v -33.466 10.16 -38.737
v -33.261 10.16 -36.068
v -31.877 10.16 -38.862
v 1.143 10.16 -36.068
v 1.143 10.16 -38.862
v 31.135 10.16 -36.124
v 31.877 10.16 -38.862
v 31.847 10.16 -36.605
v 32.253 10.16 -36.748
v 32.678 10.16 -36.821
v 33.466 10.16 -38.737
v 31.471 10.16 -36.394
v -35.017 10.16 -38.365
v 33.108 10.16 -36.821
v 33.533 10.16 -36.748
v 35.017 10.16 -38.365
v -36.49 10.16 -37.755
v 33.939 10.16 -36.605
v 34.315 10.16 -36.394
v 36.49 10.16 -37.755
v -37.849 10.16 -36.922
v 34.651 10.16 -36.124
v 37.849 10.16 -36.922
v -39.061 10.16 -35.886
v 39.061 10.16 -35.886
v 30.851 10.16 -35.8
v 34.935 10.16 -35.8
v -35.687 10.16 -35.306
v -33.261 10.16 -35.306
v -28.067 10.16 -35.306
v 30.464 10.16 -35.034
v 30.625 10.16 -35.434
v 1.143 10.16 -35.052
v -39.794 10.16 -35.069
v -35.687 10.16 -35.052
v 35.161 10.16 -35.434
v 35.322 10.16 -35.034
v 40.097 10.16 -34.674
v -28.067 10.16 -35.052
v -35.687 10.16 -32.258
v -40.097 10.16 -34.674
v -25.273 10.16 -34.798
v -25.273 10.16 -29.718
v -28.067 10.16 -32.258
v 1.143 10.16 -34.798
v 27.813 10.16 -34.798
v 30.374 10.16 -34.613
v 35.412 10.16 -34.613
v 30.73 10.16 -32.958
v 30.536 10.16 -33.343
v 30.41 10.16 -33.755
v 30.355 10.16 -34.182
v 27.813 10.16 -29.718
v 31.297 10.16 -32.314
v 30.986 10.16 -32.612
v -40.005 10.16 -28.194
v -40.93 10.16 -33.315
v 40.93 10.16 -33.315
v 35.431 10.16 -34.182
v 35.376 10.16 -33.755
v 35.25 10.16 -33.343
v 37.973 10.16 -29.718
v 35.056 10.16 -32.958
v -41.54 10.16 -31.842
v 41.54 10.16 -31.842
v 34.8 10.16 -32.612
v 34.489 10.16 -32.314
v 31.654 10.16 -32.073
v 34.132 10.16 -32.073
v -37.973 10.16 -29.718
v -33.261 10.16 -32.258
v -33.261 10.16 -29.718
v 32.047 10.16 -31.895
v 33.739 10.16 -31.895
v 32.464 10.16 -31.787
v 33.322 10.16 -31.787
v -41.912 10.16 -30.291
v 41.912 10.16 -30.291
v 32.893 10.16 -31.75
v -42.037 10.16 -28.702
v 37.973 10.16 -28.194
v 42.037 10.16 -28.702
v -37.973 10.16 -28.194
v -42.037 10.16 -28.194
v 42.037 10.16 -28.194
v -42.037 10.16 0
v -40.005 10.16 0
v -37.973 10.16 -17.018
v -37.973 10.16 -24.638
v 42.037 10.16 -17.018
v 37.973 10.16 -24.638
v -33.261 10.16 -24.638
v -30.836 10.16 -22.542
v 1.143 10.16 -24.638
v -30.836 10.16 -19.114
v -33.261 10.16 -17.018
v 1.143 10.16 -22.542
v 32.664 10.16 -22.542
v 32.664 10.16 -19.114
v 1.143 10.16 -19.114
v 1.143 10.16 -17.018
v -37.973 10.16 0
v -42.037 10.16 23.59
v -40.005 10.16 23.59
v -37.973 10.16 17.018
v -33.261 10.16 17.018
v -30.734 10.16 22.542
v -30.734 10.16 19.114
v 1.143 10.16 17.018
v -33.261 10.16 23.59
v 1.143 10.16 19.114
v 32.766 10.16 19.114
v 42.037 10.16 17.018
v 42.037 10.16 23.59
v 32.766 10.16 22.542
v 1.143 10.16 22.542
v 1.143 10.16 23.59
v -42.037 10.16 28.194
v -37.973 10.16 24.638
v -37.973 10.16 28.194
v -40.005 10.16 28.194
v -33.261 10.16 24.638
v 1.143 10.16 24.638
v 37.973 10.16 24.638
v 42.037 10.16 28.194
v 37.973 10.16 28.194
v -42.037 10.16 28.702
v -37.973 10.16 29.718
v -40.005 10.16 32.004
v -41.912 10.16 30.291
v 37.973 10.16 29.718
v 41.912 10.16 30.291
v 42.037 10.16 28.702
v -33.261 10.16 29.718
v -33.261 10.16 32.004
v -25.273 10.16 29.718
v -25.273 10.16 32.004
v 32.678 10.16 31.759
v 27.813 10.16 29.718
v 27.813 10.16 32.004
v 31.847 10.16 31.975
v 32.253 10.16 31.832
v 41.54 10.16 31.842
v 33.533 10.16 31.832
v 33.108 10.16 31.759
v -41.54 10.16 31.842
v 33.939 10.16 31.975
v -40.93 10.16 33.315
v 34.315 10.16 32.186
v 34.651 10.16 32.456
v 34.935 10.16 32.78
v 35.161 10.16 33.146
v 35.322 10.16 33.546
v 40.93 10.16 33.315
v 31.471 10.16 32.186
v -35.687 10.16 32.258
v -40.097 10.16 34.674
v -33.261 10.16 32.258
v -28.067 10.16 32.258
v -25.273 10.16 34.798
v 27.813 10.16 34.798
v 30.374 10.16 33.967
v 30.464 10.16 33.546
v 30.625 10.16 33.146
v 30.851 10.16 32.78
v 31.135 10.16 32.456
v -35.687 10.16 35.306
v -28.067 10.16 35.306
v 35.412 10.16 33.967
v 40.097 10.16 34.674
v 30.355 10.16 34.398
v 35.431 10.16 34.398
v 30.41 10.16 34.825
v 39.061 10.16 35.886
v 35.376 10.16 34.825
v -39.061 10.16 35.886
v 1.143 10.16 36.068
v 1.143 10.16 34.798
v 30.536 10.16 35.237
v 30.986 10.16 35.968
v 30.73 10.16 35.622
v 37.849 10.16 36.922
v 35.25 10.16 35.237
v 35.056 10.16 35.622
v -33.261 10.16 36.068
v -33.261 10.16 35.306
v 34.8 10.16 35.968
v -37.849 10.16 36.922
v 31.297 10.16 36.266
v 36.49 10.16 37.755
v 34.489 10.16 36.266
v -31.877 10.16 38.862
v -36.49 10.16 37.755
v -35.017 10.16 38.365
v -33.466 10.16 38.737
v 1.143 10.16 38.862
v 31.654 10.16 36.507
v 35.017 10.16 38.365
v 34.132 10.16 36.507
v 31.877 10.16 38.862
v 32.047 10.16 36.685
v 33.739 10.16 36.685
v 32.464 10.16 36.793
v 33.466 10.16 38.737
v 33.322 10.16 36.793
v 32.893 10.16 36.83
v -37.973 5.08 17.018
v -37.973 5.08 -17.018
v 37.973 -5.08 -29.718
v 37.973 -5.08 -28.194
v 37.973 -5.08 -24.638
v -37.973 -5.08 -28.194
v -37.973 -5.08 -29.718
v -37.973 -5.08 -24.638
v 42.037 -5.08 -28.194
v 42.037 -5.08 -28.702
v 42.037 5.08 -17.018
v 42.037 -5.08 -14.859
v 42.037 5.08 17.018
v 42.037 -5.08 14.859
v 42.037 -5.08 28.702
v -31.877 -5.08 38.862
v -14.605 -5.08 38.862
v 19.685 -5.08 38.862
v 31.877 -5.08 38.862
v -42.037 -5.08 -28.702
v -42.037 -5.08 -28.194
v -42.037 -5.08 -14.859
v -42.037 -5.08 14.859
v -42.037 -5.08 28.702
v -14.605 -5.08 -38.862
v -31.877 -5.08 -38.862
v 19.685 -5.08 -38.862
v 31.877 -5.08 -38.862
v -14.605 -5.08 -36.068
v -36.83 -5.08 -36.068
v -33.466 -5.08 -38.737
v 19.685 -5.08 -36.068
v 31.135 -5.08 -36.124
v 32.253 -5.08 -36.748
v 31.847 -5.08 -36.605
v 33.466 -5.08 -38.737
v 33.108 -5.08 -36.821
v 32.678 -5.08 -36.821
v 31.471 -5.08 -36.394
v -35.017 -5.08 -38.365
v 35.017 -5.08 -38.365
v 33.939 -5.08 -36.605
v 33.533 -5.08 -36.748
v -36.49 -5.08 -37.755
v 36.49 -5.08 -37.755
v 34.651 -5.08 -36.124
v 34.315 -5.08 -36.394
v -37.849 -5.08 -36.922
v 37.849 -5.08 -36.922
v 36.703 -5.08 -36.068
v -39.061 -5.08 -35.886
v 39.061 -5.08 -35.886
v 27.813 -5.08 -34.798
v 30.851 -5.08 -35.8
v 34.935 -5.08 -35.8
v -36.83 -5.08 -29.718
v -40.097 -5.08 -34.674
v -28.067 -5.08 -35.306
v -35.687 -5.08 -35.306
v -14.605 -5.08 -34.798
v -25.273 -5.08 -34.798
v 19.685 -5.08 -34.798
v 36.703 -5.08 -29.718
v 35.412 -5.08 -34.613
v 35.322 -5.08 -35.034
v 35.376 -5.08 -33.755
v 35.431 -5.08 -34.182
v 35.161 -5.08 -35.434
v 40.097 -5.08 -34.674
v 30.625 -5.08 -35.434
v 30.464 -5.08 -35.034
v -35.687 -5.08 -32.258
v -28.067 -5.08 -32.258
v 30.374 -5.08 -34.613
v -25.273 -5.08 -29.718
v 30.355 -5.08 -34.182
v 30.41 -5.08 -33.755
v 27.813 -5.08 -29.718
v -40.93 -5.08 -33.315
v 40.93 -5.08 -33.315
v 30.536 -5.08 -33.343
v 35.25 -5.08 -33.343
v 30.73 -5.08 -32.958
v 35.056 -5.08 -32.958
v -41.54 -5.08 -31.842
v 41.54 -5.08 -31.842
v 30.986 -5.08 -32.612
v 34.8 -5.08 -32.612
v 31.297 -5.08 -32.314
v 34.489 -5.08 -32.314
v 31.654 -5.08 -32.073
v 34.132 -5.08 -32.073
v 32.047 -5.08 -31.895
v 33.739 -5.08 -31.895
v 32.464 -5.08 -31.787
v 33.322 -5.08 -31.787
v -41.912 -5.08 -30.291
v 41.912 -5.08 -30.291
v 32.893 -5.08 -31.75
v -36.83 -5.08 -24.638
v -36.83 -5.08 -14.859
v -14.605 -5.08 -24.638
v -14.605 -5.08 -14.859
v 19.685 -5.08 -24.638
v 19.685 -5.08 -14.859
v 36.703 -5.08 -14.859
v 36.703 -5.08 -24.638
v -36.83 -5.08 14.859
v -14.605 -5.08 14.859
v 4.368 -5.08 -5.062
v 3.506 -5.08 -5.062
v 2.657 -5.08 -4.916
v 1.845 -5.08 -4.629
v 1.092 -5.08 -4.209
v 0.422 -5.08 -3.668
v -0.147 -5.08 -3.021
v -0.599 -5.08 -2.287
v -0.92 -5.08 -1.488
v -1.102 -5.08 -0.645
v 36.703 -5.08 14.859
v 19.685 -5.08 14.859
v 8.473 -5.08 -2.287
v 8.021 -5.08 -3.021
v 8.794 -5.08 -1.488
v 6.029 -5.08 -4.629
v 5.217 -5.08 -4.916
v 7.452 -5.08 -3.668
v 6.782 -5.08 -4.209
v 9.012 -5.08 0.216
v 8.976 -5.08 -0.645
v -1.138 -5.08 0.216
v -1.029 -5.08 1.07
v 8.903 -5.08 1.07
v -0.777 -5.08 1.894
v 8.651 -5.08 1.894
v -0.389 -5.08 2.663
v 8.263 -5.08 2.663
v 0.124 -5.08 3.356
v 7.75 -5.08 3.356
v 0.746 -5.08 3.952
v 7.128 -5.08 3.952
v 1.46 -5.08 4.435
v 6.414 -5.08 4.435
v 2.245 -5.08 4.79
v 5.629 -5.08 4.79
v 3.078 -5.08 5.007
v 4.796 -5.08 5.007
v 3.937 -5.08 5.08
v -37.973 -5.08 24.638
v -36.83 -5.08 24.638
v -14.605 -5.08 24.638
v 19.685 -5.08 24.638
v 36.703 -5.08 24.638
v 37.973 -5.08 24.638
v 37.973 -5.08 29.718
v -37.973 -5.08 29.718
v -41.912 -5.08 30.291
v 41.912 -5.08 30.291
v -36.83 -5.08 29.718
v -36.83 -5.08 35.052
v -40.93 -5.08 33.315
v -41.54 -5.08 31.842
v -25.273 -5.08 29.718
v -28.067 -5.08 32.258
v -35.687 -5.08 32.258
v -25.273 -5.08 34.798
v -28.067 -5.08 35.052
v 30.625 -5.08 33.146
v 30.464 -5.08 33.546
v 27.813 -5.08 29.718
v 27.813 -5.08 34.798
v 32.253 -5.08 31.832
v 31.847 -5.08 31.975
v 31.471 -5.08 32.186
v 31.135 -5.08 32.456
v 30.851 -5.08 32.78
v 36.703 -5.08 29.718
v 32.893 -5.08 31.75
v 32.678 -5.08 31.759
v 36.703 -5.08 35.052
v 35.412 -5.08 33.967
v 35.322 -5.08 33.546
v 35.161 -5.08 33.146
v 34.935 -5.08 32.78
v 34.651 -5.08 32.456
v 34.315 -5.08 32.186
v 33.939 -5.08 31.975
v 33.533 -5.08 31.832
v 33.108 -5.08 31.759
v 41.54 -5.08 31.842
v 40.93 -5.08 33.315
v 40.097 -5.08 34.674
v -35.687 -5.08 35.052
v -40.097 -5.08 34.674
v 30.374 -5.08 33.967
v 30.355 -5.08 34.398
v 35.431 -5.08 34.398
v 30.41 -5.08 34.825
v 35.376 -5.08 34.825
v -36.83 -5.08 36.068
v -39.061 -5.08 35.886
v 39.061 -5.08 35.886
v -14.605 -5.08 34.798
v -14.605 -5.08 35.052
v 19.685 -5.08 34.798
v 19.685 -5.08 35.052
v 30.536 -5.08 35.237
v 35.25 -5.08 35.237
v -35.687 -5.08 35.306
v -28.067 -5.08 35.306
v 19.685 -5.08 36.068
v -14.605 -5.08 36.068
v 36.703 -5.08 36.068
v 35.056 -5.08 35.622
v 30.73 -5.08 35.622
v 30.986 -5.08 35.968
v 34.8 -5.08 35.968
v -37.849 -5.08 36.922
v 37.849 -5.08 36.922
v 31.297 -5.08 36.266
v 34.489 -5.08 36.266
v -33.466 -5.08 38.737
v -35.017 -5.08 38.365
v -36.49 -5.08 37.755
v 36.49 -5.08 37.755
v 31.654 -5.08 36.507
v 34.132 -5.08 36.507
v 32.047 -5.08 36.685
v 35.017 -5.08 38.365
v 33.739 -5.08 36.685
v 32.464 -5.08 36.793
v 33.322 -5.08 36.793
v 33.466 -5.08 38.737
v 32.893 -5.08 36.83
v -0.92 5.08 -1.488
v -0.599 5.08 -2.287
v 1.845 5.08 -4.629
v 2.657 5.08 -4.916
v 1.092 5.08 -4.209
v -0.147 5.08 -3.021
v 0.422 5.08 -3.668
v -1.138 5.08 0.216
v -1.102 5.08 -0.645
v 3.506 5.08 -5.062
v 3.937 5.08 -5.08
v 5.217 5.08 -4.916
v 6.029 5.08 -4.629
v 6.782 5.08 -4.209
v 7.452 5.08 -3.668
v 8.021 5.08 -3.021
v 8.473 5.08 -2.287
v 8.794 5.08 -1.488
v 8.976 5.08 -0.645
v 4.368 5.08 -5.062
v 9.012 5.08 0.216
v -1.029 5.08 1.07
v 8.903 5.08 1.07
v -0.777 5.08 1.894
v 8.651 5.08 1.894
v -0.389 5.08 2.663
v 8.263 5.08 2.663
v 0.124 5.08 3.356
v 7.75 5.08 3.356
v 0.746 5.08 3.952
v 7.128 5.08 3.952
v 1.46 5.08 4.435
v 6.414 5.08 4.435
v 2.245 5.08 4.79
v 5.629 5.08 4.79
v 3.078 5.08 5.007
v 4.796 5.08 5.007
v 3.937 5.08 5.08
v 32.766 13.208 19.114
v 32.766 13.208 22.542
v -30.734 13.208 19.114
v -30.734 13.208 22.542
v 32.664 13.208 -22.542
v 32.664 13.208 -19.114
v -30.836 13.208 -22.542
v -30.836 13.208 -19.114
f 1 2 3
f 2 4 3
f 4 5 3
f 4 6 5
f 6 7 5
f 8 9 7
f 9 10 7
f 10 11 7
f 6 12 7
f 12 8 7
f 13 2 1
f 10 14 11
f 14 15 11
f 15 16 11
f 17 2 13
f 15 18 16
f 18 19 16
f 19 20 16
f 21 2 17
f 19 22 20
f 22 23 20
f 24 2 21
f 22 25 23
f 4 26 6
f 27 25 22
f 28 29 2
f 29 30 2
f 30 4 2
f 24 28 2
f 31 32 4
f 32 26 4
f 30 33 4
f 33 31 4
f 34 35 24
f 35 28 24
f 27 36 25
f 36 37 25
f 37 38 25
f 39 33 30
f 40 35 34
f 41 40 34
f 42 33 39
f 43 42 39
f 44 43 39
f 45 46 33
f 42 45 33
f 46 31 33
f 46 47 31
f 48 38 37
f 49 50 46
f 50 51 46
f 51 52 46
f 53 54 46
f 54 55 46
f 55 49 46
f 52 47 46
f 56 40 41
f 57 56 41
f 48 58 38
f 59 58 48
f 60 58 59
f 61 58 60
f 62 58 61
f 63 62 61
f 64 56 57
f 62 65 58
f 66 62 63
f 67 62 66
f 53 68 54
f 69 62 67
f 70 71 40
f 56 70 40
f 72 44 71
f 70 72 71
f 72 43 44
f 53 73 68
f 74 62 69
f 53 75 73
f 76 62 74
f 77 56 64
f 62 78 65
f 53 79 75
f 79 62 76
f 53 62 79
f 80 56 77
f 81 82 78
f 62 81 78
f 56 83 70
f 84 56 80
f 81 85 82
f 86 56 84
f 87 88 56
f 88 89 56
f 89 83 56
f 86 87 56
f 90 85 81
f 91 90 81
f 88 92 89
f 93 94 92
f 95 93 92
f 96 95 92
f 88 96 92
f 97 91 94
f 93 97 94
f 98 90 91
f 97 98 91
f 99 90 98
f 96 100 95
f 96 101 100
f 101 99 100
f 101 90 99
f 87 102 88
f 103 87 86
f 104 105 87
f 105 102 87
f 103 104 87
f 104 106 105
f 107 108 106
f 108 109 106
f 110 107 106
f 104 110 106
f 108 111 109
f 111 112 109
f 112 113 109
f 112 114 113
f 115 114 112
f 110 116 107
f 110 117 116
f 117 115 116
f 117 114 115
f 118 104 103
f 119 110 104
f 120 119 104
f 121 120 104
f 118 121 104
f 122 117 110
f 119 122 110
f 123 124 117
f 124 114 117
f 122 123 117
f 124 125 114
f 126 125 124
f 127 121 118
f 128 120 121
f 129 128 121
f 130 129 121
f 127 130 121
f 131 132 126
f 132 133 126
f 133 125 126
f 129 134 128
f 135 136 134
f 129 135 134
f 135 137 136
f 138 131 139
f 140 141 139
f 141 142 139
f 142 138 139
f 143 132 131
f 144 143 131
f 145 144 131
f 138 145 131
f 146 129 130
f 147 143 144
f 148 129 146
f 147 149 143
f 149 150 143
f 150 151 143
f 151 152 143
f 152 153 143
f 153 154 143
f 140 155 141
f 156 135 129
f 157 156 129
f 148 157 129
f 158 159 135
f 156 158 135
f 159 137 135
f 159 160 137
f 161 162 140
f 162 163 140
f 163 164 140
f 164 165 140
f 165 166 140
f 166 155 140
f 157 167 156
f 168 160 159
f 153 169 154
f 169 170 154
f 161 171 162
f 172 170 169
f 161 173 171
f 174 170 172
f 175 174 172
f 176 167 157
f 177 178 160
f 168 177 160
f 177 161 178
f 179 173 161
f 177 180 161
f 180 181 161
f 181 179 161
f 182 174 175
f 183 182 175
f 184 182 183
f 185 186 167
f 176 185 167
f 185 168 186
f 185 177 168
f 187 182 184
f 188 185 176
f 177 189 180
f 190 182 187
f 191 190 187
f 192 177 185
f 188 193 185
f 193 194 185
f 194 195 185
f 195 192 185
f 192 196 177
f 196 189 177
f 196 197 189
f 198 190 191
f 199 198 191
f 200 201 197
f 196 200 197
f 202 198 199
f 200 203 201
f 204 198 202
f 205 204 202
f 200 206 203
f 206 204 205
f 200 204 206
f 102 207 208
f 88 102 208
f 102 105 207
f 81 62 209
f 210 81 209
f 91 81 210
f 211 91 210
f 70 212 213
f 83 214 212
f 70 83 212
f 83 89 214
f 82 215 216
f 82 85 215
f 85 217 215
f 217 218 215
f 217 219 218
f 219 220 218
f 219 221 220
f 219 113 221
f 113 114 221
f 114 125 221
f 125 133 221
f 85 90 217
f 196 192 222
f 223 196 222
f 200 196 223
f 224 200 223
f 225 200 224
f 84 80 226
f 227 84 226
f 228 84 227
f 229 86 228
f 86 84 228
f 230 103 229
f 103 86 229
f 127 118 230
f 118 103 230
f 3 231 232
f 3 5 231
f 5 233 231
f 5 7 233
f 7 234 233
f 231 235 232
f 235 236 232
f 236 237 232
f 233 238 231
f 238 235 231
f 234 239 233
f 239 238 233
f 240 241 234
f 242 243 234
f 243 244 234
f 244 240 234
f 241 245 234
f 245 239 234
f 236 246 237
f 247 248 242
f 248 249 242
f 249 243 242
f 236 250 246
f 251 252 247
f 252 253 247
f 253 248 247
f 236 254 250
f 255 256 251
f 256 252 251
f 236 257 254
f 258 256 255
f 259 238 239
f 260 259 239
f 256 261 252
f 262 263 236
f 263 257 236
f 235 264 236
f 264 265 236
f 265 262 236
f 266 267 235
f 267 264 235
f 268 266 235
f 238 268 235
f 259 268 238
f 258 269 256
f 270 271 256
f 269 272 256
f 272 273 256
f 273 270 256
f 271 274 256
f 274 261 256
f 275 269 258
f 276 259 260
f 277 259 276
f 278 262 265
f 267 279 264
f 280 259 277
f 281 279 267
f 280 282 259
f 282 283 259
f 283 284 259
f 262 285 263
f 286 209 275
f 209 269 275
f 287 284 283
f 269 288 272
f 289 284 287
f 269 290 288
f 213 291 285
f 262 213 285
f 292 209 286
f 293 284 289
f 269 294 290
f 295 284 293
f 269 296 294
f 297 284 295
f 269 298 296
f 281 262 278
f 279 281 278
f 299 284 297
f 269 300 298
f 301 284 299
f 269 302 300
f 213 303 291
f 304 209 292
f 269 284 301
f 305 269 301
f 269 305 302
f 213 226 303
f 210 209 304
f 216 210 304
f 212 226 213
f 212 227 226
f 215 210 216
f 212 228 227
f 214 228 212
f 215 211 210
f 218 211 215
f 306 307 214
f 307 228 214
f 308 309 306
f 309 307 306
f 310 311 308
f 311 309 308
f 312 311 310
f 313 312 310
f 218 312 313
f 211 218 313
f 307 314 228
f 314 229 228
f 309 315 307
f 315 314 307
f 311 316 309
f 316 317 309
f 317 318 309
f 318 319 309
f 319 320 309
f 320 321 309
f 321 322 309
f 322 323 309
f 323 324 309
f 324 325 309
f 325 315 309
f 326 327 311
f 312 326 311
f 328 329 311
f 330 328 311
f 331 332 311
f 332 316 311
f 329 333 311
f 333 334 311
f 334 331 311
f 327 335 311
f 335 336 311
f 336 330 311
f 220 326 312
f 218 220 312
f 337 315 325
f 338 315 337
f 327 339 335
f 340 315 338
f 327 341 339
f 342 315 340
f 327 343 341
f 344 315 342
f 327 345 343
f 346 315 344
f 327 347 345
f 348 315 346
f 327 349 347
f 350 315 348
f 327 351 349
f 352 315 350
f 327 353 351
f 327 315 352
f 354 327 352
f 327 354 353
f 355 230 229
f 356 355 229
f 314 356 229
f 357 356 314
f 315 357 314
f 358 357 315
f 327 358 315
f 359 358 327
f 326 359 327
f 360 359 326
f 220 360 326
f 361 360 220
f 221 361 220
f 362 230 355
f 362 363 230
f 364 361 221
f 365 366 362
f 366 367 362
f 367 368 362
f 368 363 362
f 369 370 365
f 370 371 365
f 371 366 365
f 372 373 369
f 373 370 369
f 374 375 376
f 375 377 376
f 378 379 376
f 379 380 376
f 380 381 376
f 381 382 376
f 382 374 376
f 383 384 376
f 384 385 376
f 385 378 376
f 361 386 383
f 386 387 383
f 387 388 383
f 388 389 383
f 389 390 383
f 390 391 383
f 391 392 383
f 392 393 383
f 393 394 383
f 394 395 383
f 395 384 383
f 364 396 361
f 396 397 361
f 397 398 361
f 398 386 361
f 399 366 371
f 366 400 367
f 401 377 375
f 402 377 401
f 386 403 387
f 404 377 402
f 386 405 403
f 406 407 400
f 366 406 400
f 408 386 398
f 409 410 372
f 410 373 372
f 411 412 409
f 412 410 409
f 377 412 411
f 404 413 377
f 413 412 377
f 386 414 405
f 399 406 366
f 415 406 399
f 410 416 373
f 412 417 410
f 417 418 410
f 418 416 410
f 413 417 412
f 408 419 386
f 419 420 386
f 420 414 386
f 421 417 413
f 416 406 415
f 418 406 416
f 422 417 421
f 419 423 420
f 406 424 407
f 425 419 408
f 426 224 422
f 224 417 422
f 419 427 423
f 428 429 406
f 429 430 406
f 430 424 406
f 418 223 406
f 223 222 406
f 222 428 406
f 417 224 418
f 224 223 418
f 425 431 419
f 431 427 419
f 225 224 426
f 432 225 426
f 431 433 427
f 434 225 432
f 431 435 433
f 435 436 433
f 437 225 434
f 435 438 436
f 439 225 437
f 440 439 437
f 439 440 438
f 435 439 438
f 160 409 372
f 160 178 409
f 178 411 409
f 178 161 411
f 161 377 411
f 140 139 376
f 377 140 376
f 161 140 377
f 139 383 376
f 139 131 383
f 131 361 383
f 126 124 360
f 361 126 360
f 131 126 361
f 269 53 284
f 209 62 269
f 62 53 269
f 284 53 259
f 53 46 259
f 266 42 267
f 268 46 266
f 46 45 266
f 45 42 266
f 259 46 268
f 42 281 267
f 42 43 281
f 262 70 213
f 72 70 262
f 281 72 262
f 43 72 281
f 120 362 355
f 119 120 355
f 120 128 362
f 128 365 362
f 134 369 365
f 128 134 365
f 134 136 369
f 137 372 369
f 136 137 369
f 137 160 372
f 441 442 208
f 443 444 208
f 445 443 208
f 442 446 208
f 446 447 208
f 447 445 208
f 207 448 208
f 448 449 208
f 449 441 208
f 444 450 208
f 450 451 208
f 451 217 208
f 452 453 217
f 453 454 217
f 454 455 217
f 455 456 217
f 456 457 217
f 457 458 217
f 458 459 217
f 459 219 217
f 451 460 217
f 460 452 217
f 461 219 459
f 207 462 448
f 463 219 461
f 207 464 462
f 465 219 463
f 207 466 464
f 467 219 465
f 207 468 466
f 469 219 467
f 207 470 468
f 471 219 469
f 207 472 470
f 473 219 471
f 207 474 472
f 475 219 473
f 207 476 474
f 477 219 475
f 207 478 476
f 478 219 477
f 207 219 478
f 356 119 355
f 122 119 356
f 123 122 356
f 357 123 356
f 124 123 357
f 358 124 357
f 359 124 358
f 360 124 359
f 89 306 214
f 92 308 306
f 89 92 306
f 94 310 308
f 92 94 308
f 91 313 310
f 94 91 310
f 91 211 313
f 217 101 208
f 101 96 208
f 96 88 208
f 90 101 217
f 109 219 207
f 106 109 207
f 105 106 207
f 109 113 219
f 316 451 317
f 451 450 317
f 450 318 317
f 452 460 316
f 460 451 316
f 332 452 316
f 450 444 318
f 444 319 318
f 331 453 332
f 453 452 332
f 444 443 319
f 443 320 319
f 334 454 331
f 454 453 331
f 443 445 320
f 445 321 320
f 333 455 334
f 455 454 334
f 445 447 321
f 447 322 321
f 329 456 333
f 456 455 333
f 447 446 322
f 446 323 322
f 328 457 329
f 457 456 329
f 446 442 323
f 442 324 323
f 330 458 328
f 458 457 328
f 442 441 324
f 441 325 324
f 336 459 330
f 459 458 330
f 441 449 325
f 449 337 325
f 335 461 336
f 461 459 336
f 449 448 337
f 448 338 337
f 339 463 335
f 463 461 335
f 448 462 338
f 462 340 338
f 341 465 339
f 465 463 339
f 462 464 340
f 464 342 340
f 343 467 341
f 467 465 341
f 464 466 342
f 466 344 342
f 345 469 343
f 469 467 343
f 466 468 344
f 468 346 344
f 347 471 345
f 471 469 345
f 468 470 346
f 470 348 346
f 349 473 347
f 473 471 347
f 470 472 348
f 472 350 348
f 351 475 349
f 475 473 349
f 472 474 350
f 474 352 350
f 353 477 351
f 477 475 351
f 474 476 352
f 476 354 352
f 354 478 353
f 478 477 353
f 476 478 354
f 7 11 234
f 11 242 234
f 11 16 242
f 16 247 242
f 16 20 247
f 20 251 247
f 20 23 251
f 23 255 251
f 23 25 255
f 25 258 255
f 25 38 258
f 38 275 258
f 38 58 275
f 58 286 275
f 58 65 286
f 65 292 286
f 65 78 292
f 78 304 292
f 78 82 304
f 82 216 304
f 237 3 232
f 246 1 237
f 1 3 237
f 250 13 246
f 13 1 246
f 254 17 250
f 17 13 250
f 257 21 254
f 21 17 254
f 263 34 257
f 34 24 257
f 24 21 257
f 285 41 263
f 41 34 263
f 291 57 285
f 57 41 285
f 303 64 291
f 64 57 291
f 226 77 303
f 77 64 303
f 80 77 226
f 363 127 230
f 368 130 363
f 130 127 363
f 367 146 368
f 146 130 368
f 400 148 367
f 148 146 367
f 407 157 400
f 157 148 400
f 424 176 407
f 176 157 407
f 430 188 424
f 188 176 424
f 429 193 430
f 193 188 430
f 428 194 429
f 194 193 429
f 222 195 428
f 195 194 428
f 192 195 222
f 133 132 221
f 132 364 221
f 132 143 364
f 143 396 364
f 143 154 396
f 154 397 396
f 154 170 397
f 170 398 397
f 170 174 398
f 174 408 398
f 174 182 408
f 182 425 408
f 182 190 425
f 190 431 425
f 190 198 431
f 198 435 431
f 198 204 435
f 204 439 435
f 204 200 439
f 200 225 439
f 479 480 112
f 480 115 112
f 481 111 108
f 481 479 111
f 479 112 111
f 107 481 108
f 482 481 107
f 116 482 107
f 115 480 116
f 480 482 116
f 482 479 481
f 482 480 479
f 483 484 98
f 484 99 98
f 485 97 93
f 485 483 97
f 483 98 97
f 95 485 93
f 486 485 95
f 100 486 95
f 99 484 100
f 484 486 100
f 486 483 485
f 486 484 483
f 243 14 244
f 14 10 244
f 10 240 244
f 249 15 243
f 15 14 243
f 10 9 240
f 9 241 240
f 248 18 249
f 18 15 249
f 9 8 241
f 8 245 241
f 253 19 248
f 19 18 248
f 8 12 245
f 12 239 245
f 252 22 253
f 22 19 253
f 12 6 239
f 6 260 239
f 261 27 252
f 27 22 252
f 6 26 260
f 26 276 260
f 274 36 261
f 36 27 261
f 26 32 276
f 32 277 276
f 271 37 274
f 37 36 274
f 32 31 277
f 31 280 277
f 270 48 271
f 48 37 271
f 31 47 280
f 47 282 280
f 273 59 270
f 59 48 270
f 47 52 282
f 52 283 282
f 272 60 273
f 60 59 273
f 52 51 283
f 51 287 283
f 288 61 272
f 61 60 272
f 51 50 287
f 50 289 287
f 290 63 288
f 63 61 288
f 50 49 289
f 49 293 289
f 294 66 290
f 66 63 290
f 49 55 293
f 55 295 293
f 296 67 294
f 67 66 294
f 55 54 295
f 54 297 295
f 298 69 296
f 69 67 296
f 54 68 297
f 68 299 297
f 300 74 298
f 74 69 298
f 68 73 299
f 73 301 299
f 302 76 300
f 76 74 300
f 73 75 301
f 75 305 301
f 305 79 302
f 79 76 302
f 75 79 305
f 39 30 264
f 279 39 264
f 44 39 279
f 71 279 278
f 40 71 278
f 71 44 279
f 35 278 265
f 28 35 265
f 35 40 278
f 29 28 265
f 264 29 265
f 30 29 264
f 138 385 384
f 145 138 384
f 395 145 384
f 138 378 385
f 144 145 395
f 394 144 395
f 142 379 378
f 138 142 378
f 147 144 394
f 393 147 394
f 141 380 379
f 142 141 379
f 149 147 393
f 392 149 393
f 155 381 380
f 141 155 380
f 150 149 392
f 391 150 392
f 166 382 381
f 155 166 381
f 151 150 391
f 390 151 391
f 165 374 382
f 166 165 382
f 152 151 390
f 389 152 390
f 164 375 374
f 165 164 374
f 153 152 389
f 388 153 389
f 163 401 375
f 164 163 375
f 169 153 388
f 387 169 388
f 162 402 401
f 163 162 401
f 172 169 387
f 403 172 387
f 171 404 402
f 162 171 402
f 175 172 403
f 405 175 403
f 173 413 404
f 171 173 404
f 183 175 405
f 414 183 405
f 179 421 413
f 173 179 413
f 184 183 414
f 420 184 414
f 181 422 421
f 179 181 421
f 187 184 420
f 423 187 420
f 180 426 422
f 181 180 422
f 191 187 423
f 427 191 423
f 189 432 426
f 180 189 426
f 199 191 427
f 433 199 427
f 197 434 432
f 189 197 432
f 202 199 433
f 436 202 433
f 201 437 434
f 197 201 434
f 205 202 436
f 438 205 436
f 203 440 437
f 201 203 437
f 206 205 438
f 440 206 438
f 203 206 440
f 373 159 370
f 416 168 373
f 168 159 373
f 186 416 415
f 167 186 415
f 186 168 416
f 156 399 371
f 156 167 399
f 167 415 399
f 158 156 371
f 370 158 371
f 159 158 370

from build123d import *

# Parameters (mm, degrees)
SKETCH1_W                = 84.074
SKETCH1_H                = 77.724
BOSS_EXTRUDE1_DEPTH      = 5.08
BOSS_EXTRUDE1_DEPTH_BACK = 5.08
SKETCH2_W                = 84.074
SKETCH2_H                = 77.724
BOSS_EXTRUDE2_DEPTH      = 5.08
BOSS_EXTRUDE2_DEPTH_BACK = 10.16
SKETCH3_W                = 53.086
SKETCH3_H                = 5.08
CUT_EXTRUDE1_DEPTH       = 6.08
CUT_EXTRUDE1_DEPTH_BACK  = 11.16
SKETCH4_W                = 75.946
SKETCH4_H                = 5.08
CUT_EXTRUDE2_DEPTH       = 6.08
CUT_EXTRUDE2_DEPTH_BACK  = 11.16
SKETCH5_W                = 75.946
SKETCH5_H                = 7.62
BOSS_EXTRUDE3_DEPTH      = 5.08
BOSS_EXTRUDE3_DEPTH_BACK = 10.16
SKETCH10_R               = 5.08
CUT_EXTRUDE4_DEPTH       = 6.08
CUT_EXTRUDE4_DEPTH_BACK  = 11.16
FILLET1_R                = 10.16
SKETCH14_W               = 63.5
SKETCH14_H               = 3.429
BOSS_EXTRUDE7_DEPTH      = 3.048
CUT_EXTRUDE6_START       = -16.24
SKETCH15_R               = 2.54
SKETCH15_W               = 7.62
SKETCH15_H               = 3.048
CUT_EXTRUDE6_DEPTH       = 20.288
SKETCH7_W                = 34.036
SKETCH7_H                = 5.08
CUT_EXTRUDE7_DEPTH       = 5.064


with BuildPart() as part:
    # Sketch1 → Boss-Extrude1 (new body, two sides)
    with BuildSketch(Plane(origin=(0, 0, 0), x_dir=(1, 0, 0), z_dir=(0, 1, 0))) as boss_extrude1_sk:
        Rectangle(SKETCH1_W, SKETCH1_H)
    extrude(amount=BOSS_EXTRUDE1_DEPTH)
    extrude(boss_extrude1_sk.sketch, amount=-BOSS_EXTRUDE1_DEPTH_BACK)

    # Sketch2 → Boss-Extrude2 (add, two sides)
    with BuildSketch(Plane(origin=(0, 5.08, 0), x_dir=(1, 0, 0), z_dir=(0, 1, 0))) as boss_extrude2_sk:
        Rectangle(SKETCH2_W, SKETCH2_H)
        Polygon((-37.973, -29.718), (-37.973, 29.718), (-25.273, 29.718), (-25.273, 34.798), (27.813, 34.798), (27.813, 29.718), (37.973, 29.718), (37.973, -29.718), (27.813, -29.718), (27.813, -34.798), (-25.273, -34.798), (-25.273, -29.718), align=None, mode=Mode.SUBTRACT)
    extrude(amount=BOSS_EXTRUDE2_DEPTH)
    extrude(boss_extrude2_sk.sketch, amount=-BOSS_EXTRUDE2_DEPTH_BACK)

    # Sketch3 → Cut-Extrude1 (cut, two sides)
    with BuildSketch(Plane(origin=(0, 5.08, 0), x_dir=(1, 0, 0), z_dir=(0, 1, 0))) as cut_extrude1_sk:
        with Locations((1.27, 32.258)):
            Rectangle(SKETCH3_W, SKETCH3_H)
        with Locations((1.27, -32.258)):
            Rectangle(SKETCH3_W, SKETCH3_H)
    extrude(amount=CUT_EXTRUDE1_DEPTH, mode=Mode.SUBTRACT)
    extrude(cut_extrude1_sk.sketch, amount=-CUT_EXTRUDE1_DEPTH_BACK, mode=Mode.SUBTRACT)

    # Sketch4 → Cut-Extrude2 (cut, two sides)
    with BuildSketch(Plane(origin=(0, 5.08, 0), x_dir=(1, 0, 0), z_dir=(0, 1, 0))) as cut_extrude2_sk:
        with Locations((0, 27.178)):
            Rectangle(SKETCH4_W, SKETCH4_H)
        with Locations((0, -27.178)):
            Rectangle(SKETCH4_W, SKETCH4_H)
    extrude(amount=CUT_EXTRUDE2_DEPTH, mode=Mode.SUBTRACT)
    extrude(cut_extrude2_sk.sketch, amount=-CUT_EXTRUDE2_DEPTH_BACK, mode=Mode.SUBTRACT)

    # Sketch5 → Boss-Extrude3 (add, two sides)
    with BuildSketch(Plane(origin=(0, 5.08, 0), x_dir=(1, 0, 0), z_dir=(0, 1, 0))) as boss_extrude3_sk:
        with Locations((0, 20.828)):
            Rectangle(SKETCH5_W, SKETCH5_H)
        with Locations((0, -20.828)):
            Rectangle(SKETCH5_W, SKETCH5_H)
    extrude(amount=BOSS_EXTRUDE3_DEPTH)
    extrude(boss_extrude3_sk.sketch, amount=-BOSS_EXTRUDE3_DEPTH_BACK)

    # Sketch10 → Cut-Extrude4 (cut, two sides)
    with BuildSketch(Plane(origin=(0, 5.08, 0), x_dir=(1, 0, 0), z_dir=(0, 1, 0))) as cut_extrude4_sk:
        with Locations((3.937, 0)):
            Circle(SKETCH10_R)
    extrude(amount=CUT_EXTRUDE4_DEPTH, mode=Mode.SUBTRACT)
    extrude(cut_extrude4_sk.sketch, amount=-CUT_EXTRUDE4_DEPTH_BACK, mode=Mode.SUBTRACT)

    # Fillet1
    fillet1_edges = [part.edges().sort_by_distance(p)[0] for p in [
        (42.037, 2.54, 38.862),
        (-42.037, 2.54, 38.862),
        (-42.037, 2.54, -38.862),
        (42.037, 2.54, -38.862),
    ]]
    fillet(fillet1_edges, radius=FILLET1_R)

    # Sketch14 → Boss-Extrude7 (add)
    with BuildSketch(Plane(origin=(0, 10.16, 0), x_dir=(1, 0, 0), z_dir=(0, 1, 0))):
        with Locations((1.015527002, -20.828)):
            Rectangle(SKETCH14_W, SKETCH14_H)
        with Locations((0.914410511, 20.828)):
            Rectangle(SKETCH14_W, SKETCH14_H)
    extrude(amount=BOSS_EXTRUDE7_DEPTH)

    # Sketch15 → Cut-Extrude6 (cut)
    with BuildSketch(Plane(origin=(0, 10.16, 0), x_dir=(1, 0, 0), z_dir=(0, 1, 0)).offset(CUT_EXTRUDE6_START)):
        with Locations((32.893, 34.29)):
            Circle(SKETCH15_R)
        with Locations((-31.877, 33.782)):
            Rectangle(SKETCH15_W, SKETCH15_H)
    cut_extrude6 = extrude(amount=CUT_EXTRUDE6_DEPTH, mode=Mode.SUBTRACT)

    # Mirror1: Cut-Extrude6 across plane
    add(cut_extrude6.mirror(Plane.XY), mode=Mode.SUBTRACT)

    # Sketch7 → Cut-Extrude7 (cut, through all)
    with BuildSketch(Plane.ZY.offset(-37.973)):
        with Locations((0, 7.62)):
            Rectangle(SKETCH7_W, SKETCH7_H)
    extrude(amount=-CUT_EXTRUDE7_DEPTH, mode=Mode.SUBTRACT)


solid = part.part
